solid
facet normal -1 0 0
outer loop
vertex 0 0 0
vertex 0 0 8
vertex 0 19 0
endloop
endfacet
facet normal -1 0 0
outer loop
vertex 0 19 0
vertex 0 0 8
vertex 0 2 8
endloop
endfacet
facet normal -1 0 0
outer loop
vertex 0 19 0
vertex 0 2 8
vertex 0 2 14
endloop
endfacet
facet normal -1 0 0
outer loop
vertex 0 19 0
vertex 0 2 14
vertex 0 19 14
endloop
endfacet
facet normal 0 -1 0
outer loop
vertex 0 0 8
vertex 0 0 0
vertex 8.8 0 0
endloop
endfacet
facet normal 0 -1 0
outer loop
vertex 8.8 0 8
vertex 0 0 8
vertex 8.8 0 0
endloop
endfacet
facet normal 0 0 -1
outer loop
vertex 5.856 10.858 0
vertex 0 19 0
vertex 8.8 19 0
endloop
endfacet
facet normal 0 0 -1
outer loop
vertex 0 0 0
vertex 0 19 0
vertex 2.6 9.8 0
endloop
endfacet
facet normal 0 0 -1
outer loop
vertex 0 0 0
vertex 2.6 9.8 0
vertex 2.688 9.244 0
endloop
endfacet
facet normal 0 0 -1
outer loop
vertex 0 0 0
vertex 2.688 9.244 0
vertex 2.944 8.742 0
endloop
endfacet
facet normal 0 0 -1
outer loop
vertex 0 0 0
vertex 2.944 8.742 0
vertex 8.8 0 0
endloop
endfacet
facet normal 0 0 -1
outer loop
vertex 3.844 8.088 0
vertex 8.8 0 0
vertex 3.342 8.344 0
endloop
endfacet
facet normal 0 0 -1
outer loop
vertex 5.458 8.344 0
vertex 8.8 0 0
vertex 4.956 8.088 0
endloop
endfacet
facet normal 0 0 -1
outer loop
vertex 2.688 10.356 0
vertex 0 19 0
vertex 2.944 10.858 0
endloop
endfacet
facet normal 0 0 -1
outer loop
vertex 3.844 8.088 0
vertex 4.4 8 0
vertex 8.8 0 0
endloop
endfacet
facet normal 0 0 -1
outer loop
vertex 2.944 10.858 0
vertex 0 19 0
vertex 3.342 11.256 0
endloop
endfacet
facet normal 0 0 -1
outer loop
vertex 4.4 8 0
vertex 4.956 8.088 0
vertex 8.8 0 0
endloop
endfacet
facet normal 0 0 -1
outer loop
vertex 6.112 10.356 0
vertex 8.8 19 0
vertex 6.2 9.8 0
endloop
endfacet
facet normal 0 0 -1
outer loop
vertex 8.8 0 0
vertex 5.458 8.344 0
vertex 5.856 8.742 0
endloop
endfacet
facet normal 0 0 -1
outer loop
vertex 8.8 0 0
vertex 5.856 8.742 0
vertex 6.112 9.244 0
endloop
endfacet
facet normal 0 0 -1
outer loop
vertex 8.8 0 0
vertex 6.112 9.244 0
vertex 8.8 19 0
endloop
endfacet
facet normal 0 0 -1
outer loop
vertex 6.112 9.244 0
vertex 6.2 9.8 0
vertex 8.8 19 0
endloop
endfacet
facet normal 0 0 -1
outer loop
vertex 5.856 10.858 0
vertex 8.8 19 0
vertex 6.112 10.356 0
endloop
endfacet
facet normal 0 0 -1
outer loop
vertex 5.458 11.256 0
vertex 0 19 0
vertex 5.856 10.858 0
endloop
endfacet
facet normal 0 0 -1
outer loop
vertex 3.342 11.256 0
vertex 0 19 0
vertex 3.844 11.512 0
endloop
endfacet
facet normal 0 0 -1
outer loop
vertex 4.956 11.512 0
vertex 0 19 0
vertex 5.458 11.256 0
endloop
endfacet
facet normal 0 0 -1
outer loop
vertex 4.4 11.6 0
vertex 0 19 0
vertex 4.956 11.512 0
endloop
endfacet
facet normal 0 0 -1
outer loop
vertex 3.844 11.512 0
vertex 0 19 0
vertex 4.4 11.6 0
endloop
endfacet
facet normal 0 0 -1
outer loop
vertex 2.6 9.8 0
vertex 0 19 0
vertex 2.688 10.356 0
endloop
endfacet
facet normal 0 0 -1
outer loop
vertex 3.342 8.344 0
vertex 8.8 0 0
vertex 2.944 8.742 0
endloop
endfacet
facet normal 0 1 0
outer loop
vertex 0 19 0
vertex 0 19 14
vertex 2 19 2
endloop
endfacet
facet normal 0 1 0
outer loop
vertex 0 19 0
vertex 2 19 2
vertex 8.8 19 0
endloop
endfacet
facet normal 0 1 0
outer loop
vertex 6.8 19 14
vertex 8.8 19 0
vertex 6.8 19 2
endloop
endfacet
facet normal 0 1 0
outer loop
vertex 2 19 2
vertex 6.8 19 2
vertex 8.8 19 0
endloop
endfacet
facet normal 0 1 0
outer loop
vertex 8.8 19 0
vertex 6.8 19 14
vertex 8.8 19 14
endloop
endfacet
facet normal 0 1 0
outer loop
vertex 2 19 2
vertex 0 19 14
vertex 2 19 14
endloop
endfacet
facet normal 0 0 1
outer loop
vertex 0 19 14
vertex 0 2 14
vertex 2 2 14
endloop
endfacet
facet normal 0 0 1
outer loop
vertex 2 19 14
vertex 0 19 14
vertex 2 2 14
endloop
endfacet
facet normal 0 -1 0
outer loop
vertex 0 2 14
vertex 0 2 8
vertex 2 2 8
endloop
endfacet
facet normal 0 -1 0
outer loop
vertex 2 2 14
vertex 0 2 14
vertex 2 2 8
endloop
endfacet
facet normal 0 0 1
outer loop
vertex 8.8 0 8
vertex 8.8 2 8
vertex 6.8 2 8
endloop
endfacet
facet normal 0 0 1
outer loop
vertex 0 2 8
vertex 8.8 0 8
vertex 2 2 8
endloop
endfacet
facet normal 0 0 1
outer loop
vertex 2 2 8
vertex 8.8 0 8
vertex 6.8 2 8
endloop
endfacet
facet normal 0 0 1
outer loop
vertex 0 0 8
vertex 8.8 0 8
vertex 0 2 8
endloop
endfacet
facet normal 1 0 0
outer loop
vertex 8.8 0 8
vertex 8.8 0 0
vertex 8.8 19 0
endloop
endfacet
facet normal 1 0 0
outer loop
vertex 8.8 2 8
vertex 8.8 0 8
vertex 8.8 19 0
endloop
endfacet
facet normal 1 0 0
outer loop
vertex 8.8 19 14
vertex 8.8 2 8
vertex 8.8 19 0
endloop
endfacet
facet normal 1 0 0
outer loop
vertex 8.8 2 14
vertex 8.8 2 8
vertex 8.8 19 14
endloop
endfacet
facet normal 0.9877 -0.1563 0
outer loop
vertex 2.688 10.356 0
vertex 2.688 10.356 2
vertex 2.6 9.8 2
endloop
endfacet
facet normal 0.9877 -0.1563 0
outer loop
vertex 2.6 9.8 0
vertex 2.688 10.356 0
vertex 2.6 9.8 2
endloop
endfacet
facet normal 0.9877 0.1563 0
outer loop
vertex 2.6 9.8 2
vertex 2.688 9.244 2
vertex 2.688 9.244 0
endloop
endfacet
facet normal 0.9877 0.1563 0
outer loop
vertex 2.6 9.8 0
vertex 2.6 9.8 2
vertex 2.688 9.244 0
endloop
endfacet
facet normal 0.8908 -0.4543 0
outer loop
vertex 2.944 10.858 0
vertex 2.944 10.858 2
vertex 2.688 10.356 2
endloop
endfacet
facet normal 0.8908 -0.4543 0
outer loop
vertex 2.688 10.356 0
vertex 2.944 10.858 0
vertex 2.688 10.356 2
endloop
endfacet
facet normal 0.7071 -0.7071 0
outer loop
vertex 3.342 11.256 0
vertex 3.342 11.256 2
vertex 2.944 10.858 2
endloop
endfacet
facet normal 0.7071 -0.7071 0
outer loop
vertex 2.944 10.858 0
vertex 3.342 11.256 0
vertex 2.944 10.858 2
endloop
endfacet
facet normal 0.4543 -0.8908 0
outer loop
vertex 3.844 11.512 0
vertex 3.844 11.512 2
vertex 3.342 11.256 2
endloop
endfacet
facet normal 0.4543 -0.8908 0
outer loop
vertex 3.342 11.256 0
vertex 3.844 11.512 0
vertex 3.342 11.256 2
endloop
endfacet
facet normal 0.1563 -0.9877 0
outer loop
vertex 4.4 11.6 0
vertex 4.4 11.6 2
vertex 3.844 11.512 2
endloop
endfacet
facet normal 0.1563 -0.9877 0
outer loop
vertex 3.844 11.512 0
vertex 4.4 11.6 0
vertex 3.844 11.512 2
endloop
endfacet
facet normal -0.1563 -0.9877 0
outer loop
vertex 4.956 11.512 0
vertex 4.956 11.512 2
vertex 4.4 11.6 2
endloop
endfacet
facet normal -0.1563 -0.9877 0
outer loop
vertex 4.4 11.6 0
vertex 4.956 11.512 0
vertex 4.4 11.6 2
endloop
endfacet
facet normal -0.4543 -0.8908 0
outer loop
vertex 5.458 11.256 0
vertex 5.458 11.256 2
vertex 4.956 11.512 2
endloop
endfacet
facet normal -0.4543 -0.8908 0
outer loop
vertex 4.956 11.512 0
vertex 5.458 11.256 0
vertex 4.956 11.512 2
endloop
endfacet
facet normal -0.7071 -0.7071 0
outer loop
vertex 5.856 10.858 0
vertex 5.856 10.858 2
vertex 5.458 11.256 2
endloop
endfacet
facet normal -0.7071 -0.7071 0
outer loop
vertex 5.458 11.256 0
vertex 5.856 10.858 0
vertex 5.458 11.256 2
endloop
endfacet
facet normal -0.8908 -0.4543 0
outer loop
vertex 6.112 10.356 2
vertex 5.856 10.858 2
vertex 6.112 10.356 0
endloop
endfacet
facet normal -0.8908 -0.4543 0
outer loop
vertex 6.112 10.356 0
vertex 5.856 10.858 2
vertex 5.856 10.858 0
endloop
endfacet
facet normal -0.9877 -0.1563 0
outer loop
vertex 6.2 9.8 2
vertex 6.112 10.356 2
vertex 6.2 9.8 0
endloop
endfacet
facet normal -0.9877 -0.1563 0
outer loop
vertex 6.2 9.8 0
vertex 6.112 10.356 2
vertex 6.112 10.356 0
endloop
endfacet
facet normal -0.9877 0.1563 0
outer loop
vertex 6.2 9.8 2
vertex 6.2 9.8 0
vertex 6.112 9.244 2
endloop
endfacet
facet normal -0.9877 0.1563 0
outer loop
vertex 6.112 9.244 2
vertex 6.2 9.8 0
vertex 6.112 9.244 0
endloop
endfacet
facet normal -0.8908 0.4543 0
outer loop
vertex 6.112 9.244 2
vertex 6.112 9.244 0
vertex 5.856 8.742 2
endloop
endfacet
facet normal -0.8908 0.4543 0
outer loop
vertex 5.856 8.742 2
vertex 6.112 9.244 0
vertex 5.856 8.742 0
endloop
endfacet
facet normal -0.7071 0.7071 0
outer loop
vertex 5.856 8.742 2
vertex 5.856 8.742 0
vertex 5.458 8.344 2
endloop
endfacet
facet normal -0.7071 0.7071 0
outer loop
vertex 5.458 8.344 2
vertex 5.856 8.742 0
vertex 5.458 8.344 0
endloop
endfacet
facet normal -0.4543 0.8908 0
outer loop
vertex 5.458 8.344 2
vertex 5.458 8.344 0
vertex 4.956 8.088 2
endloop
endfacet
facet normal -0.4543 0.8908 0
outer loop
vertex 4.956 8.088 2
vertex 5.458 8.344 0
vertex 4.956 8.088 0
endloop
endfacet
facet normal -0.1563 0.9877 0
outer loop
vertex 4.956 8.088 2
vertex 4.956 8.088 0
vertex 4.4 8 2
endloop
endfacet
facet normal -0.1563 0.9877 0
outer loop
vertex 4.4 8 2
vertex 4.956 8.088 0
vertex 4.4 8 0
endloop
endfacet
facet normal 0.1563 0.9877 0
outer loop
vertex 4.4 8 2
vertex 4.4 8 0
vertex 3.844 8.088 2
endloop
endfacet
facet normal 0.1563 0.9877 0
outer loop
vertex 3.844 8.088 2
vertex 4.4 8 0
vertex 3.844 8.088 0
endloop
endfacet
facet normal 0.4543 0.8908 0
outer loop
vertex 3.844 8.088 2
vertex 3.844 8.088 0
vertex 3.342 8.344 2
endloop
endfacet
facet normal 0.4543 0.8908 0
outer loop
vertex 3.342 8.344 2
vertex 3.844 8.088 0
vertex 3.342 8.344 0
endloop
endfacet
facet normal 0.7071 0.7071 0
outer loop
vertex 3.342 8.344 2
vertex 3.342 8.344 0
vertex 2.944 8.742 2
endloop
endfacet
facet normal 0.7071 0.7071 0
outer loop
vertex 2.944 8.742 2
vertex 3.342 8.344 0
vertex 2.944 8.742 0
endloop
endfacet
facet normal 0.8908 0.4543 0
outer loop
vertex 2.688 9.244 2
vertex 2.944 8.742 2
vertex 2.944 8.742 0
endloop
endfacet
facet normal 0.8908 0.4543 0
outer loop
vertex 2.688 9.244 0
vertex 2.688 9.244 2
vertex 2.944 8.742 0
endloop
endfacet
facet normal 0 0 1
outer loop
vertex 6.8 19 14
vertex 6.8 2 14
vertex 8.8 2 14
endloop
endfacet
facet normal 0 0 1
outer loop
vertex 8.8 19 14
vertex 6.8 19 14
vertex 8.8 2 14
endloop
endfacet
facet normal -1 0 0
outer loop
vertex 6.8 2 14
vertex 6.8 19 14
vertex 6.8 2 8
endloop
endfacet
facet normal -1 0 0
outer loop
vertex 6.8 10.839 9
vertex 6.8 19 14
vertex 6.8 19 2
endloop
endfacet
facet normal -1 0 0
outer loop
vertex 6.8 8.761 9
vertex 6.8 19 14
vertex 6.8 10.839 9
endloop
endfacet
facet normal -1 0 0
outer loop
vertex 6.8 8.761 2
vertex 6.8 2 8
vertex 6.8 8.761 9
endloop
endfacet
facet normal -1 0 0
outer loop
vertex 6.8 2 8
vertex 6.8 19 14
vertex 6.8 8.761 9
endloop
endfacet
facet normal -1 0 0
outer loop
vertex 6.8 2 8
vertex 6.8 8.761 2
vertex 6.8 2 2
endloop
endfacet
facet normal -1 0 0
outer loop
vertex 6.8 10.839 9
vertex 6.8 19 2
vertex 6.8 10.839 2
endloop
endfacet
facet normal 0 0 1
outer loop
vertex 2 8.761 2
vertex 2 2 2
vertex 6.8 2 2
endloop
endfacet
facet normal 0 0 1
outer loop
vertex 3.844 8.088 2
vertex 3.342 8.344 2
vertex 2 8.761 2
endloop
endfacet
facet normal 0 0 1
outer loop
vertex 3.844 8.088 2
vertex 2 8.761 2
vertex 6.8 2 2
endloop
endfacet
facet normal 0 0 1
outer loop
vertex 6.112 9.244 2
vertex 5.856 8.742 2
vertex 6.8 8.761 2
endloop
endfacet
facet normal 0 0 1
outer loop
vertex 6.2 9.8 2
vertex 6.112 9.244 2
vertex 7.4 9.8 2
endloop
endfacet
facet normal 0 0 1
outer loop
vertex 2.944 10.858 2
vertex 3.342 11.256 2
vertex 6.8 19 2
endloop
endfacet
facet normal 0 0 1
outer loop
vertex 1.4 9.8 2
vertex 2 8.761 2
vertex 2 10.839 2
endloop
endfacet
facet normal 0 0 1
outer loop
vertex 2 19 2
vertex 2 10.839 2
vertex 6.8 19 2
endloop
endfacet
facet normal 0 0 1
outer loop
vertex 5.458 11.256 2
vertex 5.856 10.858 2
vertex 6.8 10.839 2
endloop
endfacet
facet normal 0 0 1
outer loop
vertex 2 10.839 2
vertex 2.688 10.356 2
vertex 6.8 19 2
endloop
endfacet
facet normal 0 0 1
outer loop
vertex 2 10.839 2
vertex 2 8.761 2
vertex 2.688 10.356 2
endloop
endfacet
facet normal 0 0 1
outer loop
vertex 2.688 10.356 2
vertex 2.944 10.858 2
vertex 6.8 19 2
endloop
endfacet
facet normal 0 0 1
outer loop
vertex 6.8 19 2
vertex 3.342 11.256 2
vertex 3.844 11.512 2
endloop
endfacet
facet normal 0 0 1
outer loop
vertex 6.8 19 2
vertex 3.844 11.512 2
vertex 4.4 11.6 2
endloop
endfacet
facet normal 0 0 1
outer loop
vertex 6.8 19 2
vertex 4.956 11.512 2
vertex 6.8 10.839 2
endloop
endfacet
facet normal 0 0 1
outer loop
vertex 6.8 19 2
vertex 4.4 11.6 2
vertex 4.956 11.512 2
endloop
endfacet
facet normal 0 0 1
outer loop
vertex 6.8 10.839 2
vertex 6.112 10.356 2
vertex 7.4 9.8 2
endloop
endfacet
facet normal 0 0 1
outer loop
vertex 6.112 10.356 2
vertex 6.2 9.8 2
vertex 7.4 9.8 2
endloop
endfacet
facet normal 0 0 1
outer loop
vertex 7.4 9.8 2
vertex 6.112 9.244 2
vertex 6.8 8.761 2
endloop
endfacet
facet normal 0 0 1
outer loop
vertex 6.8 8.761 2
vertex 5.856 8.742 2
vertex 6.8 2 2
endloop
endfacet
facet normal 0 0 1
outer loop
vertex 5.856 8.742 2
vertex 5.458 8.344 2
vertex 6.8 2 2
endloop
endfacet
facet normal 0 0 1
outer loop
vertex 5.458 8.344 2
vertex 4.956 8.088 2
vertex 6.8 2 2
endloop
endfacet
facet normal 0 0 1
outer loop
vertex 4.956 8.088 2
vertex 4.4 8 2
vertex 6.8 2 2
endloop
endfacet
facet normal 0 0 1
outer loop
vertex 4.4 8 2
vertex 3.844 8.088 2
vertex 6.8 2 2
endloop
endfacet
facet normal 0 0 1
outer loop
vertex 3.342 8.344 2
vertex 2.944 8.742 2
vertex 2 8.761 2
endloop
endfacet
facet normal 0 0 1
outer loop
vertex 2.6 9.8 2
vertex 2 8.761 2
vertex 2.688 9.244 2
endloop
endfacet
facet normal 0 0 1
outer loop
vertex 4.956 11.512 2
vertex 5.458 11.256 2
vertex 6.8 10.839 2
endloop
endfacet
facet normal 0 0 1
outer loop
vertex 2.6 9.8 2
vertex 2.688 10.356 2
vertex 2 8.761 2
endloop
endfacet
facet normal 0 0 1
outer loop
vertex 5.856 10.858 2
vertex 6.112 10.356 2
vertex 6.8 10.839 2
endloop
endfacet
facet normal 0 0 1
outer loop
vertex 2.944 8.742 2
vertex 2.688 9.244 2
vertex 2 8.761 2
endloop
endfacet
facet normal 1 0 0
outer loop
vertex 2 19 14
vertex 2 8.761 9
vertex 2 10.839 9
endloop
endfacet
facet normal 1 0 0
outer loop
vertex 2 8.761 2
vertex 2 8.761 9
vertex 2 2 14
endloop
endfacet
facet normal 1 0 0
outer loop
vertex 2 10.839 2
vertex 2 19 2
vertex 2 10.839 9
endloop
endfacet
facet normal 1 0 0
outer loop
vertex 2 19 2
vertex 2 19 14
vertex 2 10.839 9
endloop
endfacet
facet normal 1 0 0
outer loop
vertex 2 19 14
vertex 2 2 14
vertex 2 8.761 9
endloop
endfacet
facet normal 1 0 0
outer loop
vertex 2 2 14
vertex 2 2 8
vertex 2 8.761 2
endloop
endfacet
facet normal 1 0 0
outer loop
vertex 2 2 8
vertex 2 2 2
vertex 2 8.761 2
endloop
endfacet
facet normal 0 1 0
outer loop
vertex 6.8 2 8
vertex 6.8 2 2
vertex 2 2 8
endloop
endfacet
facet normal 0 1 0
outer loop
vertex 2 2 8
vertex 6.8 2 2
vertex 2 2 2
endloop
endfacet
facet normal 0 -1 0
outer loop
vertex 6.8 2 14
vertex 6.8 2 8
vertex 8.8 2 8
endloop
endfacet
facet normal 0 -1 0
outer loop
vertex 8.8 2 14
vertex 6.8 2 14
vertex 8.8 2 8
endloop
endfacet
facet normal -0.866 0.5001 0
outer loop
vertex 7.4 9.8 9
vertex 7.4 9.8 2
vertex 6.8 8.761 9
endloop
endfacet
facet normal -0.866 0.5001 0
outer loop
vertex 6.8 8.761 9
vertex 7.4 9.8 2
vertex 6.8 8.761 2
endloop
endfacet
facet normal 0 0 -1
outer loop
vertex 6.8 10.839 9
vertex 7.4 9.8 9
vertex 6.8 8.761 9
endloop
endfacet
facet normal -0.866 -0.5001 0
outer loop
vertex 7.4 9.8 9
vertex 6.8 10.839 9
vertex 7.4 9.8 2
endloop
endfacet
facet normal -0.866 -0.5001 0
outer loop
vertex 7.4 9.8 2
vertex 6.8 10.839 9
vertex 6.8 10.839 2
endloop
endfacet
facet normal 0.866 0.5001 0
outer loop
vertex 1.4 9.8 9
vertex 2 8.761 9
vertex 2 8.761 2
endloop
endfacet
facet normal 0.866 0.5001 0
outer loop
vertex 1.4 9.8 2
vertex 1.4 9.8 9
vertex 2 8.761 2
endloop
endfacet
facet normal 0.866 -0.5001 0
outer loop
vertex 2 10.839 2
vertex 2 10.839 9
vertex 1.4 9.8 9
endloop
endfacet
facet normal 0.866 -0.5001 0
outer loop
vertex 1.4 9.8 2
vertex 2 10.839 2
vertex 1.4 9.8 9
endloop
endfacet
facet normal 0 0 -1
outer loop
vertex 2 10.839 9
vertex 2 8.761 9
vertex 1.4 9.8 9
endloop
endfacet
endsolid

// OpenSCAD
difference() {

cube([8.8,19,14]);

translate([2,2,2]) cube([4.8,19,14]);

translate([0,0,8]) cube([8.8,2,14]);

translate([4.4,9.8,0]) cylinder(r=1.8, h=15, $fn=20);

translate([4.4,9.8,2]) cylinder(r=3, h=7, $fn=6);

}
